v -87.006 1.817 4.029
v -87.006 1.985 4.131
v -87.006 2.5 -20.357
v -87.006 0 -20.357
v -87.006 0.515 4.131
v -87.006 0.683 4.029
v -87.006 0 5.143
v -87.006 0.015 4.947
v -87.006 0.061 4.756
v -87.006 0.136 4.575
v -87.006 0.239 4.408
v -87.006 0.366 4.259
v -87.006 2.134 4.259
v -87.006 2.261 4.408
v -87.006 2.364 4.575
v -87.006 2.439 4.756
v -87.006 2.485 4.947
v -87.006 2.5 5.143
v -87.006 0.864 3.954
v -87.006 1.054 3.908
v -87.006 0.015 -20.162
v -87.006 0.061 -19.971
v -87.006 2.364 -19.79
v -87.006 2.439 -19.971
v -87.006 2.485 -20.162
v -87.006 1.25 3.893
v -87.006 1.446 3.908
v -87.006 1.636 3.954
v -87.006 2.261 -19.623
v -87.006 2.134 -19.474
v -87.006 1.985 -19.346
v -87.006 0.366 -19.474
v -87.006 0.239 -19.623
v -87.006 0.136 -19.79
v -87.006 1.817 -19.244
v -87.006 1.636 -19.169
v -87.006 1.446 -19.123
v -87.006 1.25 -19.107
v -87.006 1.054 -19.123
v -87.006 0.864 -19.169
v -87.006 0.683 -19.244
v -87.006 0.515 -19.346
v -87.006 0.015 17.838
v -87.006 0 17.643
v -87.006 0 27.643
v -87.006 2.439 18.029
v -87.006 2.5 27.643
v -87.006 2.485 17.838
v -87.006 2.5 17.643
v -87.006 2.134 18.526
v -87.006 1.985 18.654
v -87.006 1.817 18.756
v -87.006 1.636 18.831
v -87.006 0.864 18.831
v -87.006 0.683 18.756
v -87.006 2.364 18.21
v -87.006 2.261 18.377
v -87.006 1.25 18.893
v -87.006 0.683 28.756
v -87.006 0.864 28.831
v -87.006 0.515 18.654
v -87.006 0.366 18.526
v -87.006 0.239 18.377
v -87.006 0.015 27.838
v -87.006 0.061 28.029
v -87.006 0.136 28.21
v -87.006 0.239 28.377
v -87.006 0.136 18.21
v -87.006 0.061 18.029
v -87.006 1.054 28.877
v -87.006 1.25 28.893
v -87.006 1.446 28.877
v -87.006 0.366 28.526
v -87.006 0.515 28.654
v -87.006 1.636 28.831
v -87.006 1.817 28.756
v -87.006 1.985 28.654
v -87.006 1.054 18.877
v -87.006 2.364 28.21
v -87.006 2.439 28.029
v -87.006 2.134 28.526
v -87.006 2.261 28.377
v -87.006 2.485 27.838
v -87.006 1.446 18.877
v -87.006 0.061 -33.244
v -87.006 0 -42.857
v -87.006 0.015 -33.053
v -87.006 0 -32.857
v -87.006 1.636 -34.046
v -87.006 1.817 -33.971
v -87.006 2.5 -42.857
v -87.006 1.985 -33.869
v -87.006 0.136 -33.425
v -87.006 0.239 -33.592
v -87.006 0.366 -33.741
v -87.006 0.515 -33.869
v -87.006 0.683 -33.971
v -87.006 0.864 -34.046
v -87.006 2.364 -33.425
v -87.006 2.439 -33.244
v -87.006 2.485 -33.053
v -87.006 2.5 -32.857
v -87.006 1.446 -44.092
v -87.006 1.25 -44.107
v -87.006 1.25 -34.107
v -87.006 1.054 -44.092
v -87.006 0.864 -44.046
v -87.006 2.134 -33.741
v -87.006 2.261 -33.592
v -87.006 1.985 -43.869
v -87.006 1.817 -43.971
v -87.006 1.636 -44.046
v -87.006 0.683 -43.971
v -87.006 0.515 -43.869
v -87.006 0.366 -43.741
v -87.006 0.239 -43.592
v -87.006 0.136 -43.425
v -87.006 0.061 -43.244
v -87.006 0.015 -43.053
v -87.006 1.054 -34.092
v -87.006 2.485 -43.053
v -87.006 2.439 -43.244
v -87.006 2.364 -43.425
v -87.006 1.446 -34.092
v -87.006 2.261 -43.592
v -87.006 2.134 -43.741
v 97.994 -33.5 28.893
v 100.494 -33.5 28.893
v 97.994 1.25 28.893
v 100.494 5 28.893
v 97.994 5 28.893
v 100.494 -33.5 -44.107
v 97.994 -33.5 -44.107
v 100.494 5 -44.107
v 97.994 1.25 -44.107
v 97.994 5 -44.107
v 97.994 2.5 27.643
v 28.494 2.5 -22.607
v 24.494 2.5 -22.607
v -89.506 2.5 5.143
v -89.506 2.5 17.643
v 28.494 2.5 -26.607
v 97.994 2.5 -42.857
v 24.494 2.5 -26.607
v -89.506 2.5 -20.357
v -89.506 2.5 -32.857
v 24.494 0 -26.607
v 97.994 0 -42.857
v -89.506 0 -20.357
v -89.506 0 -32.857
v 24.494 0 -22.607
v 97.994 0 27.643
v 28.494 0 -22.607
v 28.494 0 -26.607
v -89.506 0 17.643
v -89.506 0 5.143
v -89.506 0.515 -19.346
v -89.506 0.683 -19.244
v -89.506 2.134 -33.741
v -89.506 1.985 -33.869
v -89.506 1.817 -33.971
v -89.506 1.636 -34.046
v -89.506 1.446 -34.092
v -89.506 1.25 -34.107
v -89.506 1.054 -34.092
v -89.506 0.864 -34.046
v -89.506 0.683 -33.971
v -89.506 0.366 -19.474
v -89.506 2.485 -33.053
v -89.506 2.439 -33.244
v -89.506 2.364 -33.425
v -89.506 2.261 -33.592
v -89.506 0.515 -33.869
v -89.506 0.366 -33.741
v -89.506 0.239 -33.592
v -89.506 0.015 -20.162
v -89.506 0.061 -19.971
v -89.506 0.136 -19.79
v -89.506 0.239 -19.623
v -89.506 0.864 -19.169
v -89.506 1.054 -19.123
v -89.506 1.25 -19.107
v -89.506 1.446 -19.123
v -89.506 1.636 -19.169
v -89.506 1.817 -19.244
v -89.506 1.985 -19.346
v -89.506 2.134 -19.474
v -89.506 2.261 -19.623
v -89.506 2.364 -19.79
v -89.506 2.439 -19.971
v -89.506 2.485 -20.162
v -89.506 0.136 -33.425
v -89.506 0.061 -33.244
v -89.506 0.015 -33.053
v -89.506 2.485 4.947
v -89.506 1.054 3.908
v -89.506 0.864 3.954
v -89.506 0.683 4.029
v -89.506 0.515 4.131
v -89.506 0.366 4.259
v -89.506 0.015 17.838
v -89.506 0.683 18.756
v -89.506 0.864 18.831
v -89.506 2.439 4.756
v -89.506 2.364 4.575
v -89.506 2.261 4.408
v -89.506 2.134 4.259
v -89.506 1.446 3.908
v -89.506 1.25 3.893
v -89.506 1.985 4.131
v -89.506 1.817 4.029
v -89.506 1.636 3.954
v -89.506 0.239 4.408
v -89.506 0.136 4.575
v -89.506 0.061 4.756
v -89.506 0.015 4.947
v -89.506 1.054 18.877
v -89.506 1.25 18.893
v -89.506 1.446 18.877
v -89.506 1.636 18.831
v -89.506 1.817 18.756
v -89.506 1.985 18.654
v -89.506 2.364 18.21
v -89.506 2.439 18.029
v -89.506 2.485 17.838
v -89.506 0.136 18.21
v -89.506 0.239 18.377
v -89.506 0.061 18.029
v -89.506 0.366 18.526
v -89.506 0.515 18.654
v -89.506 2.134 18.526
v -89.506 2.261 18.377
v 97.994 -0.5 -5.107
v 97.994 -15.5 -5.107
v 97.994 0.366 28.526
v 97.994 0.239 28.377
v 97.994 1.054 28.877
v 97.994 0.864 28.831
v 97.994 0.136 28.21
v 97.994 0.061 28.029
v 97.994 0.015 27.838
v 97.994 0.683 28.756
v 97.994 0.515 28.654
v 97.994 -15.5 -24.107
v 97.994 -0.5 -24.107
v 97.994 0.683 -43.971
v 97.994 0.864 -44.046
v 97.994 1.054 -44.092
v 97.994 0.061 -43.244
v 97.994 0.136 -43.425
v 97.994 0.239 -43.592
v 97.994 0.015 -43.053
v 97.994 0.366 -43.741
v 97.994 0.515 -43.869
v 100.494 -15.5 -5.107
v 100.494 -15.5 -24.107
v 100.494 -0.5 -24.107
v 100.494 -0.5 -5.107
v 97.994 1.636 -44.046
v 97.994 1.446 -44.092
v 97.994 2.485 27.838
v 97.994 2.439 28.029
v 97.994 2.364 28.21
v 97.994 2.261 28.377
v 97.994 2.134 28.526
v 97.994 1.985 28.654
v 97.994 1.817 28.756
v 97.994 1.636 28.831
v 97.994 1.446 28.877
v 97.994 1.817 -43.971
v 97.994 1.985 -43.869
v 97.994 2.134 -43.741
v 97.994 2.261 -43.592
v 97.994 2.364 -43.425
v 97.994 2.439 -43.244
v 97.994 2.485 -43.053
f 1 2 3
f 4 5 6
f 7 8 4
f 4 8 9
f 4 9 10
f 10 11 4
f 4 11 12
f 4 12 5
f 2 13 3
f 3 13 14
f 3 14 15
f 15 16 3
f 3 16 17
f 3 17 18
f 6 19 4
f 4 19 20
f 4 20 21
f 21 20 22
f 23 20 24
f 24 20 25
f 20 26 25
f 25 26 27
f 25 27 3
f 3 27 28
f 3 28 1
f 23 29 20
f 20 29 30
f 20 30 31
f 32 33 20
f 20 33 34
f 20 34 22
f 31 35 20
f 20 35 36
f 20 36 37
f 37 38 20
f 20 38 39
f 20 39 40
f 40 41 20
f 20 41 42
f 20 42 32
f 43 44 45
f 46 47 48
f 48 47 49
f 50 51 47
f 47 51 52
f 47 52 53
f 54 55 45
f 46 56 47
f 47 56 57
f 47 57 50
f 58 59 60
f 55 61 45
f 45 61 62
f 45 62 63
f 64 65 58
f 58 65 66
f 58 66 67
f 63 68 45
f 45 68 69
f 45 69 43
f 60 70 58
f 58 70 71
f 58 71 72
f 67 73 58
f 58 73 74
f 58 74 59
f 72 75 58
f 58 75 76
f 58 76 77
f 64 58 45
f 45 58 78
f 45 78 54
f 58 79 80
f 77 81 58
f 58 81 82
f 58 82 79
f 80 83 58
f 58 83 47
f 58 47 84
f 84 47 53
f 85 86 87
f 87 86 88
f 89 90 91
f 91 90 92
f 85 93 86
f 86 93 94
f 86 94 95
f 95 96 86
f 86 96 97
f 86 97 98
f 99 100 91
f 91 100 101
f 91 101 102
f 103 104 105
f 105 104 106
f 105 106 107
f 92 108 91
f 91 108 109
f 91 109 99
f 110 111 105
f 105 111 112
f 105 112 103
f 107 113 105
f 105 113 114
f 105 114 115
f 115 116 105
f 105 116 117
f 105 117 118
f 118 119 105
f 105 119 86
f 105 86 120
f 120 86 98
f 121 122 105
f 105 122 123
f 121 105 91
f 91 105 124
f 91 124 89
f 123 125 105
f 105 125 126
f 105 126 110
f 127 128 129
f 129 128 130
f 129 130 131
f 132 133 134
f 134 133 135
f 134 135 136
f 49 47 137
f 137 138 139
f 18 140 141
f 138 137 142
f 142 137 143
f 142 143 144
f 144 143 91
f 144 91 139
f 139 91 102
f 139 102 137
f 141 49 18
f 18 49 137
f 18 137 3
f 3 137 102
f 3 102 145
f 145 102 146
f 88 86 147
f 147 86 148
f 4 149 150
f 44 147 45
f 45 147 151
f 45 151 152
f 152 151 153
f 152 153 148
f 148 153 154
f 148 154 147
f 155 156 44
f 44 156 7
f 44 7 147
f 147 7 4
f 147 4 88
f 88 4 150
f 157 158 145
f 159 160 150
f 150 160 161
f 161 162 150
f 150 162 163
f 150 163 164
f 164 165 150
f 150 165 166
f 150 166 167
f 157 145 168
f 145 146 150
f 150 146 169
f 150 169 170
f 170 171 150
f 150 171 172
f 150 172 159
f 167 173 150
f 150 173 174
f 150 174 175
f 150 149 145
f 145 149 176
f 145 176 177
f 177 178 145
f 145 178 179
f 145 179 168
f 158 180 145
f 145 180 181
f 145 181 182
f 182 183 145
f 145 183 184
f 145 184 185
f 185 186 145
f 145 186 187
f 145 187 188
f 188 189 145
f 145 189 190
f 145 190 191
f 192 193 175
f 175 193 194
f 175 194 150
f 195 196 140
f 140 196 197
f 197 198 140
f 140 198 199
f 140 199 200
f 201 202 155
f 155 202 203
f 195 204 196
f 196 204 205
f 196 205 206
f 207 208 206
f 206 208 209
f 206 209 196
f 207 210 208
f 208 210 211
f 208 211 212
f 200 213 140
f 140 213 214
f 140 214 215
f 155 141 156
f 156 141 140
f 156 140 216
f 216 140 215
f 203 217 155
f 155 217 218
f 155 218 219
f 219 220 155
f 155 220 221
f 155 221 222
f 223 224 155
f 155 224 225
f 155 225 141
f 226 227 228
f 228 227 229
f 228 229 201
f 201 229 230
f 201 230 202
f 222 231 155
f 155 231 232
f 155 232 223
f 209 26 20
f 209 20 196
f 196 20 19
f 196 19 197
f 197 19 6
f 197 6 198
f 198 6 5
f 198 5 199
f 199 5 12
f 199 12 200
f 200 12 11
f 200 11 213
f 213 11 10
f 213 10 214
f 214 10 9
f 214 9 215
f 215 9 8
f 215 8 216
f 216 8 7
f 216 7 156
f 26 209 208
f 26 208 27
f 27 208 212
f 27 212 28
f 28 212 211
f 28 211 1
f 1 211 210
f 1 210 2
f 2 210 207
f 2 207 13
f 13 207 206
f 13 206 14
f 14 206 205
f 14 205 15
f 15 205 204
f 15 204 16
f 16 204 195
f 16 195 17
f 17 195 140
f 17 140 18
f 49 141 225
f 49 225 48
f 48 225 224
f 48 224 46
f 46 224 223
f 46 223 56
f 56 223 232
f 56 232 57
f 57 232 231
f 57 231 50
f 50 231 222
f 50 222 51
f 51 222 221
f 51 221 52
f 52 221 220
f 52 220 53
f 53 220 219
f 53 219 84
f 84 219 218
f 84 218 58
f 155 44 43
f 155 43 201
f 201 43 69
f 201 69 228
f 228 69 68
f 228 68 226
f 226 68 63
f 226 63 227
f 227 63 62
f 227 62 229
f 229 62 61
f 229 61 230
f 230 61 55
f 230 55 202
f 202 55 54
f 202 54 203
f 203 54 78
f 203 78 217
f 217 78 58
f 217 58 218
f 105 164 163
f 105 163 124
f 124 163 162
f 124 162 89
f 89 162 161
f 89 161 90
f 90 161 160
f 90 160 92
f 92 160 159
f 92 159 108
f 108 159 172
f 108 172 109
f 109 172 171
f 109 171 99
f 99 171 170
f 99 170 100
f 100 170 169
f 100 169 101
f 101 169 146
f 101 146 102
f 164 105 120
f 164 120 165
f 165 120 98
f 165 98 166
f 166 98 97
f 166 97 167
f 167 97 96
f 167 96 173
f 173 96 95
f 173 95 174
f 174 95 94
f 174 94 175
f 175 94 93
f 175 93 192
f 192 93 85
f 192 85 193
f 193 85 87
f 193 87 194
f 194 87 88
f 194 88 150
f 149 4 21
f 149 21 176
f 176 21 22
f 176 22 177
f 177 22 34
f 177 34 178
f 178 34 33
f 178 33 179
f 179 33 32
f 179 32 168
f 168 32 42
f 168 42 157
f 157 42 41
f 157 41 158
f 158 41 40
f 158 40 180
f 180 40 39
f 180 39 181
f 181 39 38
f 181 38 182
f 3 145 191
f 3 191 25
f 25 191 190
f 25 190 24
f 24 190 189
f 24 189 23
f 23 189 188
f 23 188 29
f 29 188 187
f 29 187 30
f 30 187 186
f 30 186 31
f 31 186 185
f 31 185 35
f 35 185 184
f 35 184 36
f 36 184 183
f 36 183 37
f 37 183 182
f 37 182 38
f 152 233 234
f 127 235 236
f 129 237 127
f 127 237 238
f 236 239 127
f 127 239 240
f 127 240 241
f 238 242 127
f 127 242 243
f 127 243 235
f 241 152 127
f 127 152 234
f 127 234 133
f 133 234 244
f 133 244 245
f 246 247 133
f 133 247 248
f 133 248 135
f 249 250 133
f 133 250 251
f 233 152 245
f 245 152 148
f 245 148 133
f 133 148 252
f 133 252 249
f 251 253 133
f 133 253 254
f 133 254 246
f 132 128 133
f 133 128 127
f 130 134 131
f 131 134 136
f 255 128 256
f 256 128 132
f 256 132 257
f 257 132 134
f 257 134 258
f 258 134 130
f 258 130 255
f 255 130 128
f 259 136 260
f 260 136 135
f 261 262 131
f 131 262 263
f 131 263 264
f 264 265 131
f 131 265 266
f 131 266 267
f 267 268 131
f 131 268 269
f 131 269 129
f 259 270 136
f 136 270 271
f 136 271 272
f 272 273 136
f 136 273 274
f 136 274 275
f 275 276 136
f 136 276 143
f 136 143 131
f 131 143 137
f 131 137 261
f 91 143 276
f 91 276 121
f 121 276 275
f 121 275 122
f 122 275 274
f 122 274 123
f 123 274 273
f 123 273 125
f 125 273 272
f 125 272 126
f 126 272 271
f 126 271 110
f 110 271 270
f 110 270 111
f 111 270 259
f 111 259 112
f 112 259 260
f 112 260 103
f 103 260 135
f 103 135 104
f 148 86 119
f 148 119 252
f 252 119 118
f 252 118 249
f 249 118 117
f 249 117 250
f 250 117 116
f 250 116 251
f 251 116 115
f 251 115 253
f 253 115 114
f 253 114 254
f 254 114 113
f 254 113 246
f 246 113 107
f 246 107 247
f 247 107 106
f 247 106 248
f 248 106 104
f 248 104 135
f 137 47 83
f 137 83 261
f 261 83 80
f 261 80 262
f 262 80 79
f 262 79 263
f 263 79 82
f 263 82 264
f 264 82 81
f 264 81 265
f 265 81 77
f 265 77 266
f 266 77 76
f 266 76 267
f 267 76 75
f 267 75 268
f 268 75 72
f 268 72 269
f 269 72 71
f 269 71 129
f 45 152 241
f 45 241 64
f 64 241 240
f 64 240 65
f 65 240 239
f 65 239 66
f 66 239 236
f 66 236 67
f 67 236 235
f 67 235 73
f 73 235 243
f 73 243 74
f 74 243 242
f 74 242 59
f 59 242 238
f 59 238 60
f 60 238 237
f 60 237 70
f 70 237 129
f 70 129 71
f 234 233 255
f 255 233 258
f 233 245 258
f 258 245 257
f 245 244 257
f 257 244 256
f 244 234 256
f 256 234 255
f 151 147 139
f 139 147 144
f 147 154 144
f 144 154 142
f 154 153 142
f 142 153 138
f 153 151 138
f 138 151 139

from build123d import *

# Parameters (mm, degrees)
SKETCH_1_W          = 185
SKETCH_1_H          = 73
EXTRUDE_1_DEPTH     = 2.5
SKETCH_2_W          = 15
SKETCH_2_H          = 2.5
EXTRUDE_2_DEPTH     = 2.5
FILLET_2_R          = 1.25
SKETCH_3_W          = 73
SKETCH_3_H          = 38.5
EXTRUDE_3_DEPTH     = 2.5
FILLET_3_R          = 1.25
SKETCH_4_W          = 19
SKETCH_4_H          = 15
CUT_EXTRUDE_1_DEPTH = 2.5
SKETCH_5_W          = 4
SKETCH_5_H          = 4
CUT_EXTRUDE_2_DEPTH = 2.5


with BuildPart() as part:
    # 草图1 → 凸台-拉伸1 (new body)
    with BuildSketch(Plane(origin=(0, 0, 0), x_dir=(1, 0, 0), z_dir=(0, 1, 0))):
        with Locations((5.493520518, 7.607451404)):
            Rectangle(SKETCH_1_W, SKETCH_1_H)
    extrude(amount=EXTRUDE_1_DEPTH)

    # 草图2 → 凸台-拉伸2 (add)
    with BuildSketch(Plane.ZY.offset(87.006479482)):
        with Locations((-26.607451404, 1.25)):
            Rectangle(SKETCH_2_W, SKETCH_2_H)
        with Locations((11.392548596, 1.25)):
            Rectangle(SKETCH_2_W, SKETCH_2_H)
    extrude(amount=EXTRUDE_2_DEPTH)

    # 圆角2
    fillet_2_edges = [part.edges().sort_by_distance(p)[0] for p in [
        (-88.256479482, 2.5, 3.892548596),
        (-88.256479482, 0, 3.892548596),
        (-88.256479482, 0, 18.892548596),
        (-88.256479482, 2.5, 18.892548596),
        (-88.256479482, 0, -34.107451404),
        (-88.256479482, 2.5, -19.107451404),
        (-88.256479482, 0, -19.107451404),
        (-88.256479482, 2.5, -34.107451404),
    ]]
    fillet(fillet_2_edges, radius=FILLET_2_R - 0.0001)  # a hair under: the kernel refuses the full size

    # 草图3 → 凸台-拉伸3 (add)
    with BuildSketch(Plane(origin=(97.993520518, 0, 0), x_dir=(0, 0, -1), z_dir=(1, 0, 0))):
        with Locations((7.607451404, -14.25)):
            Rectangle(SKETCH_3_W, SKETCH_3_H)
    extrude(amount=EXTRUDE_3_DEPTH)

    # 圆角3
    fillet_3_edges = [part.edges().sort_by_distance(p)[0] for p in [
        (5.493520518, 0, -44.107451404),
        (5.493520518, 2.5, -44.107451404),
        (5.493520518, 0, 28.892548596),
        (5.493520518, 2.5, 28.892548596),
    ]]
    fillet(fillet_3_edges, radius=FILLET_3_R - 0.0001)  # a hair under: the kernel refuses the full size

    # 草图4 → 切除-拉伸1 (cut)
    with BuildSketch(Plane(origin=(100.493520518, 0, 0), x_dir=(0, 0, -1), z_dir=(1, 0, 0))):
        with Locations((14.607451404, -8)):
            Rectangle(SKETCH_4_W, SKETCH_4_H)
    extrude(amount=-CUT_EXTRUDE_1_DEPTH, mode=Mode.SUBTRACT)

    # 草图5 → 切除-拉伸2 (cut)
    with BuildSketch(Plane(origin=(0, 2.5, 0), x_dir=(1, 0, 0), z_dir=(0, 1, 0))):
        with Locations((26.493520518, 24.607451404)):
            Rectangle(SKETCH_5_W, SKETCH_5_H)
    extrude(amount=-CUT_EXTRUDE_2_DEPTH, mode=Mode.SUBTRACT)


solid = part.part
